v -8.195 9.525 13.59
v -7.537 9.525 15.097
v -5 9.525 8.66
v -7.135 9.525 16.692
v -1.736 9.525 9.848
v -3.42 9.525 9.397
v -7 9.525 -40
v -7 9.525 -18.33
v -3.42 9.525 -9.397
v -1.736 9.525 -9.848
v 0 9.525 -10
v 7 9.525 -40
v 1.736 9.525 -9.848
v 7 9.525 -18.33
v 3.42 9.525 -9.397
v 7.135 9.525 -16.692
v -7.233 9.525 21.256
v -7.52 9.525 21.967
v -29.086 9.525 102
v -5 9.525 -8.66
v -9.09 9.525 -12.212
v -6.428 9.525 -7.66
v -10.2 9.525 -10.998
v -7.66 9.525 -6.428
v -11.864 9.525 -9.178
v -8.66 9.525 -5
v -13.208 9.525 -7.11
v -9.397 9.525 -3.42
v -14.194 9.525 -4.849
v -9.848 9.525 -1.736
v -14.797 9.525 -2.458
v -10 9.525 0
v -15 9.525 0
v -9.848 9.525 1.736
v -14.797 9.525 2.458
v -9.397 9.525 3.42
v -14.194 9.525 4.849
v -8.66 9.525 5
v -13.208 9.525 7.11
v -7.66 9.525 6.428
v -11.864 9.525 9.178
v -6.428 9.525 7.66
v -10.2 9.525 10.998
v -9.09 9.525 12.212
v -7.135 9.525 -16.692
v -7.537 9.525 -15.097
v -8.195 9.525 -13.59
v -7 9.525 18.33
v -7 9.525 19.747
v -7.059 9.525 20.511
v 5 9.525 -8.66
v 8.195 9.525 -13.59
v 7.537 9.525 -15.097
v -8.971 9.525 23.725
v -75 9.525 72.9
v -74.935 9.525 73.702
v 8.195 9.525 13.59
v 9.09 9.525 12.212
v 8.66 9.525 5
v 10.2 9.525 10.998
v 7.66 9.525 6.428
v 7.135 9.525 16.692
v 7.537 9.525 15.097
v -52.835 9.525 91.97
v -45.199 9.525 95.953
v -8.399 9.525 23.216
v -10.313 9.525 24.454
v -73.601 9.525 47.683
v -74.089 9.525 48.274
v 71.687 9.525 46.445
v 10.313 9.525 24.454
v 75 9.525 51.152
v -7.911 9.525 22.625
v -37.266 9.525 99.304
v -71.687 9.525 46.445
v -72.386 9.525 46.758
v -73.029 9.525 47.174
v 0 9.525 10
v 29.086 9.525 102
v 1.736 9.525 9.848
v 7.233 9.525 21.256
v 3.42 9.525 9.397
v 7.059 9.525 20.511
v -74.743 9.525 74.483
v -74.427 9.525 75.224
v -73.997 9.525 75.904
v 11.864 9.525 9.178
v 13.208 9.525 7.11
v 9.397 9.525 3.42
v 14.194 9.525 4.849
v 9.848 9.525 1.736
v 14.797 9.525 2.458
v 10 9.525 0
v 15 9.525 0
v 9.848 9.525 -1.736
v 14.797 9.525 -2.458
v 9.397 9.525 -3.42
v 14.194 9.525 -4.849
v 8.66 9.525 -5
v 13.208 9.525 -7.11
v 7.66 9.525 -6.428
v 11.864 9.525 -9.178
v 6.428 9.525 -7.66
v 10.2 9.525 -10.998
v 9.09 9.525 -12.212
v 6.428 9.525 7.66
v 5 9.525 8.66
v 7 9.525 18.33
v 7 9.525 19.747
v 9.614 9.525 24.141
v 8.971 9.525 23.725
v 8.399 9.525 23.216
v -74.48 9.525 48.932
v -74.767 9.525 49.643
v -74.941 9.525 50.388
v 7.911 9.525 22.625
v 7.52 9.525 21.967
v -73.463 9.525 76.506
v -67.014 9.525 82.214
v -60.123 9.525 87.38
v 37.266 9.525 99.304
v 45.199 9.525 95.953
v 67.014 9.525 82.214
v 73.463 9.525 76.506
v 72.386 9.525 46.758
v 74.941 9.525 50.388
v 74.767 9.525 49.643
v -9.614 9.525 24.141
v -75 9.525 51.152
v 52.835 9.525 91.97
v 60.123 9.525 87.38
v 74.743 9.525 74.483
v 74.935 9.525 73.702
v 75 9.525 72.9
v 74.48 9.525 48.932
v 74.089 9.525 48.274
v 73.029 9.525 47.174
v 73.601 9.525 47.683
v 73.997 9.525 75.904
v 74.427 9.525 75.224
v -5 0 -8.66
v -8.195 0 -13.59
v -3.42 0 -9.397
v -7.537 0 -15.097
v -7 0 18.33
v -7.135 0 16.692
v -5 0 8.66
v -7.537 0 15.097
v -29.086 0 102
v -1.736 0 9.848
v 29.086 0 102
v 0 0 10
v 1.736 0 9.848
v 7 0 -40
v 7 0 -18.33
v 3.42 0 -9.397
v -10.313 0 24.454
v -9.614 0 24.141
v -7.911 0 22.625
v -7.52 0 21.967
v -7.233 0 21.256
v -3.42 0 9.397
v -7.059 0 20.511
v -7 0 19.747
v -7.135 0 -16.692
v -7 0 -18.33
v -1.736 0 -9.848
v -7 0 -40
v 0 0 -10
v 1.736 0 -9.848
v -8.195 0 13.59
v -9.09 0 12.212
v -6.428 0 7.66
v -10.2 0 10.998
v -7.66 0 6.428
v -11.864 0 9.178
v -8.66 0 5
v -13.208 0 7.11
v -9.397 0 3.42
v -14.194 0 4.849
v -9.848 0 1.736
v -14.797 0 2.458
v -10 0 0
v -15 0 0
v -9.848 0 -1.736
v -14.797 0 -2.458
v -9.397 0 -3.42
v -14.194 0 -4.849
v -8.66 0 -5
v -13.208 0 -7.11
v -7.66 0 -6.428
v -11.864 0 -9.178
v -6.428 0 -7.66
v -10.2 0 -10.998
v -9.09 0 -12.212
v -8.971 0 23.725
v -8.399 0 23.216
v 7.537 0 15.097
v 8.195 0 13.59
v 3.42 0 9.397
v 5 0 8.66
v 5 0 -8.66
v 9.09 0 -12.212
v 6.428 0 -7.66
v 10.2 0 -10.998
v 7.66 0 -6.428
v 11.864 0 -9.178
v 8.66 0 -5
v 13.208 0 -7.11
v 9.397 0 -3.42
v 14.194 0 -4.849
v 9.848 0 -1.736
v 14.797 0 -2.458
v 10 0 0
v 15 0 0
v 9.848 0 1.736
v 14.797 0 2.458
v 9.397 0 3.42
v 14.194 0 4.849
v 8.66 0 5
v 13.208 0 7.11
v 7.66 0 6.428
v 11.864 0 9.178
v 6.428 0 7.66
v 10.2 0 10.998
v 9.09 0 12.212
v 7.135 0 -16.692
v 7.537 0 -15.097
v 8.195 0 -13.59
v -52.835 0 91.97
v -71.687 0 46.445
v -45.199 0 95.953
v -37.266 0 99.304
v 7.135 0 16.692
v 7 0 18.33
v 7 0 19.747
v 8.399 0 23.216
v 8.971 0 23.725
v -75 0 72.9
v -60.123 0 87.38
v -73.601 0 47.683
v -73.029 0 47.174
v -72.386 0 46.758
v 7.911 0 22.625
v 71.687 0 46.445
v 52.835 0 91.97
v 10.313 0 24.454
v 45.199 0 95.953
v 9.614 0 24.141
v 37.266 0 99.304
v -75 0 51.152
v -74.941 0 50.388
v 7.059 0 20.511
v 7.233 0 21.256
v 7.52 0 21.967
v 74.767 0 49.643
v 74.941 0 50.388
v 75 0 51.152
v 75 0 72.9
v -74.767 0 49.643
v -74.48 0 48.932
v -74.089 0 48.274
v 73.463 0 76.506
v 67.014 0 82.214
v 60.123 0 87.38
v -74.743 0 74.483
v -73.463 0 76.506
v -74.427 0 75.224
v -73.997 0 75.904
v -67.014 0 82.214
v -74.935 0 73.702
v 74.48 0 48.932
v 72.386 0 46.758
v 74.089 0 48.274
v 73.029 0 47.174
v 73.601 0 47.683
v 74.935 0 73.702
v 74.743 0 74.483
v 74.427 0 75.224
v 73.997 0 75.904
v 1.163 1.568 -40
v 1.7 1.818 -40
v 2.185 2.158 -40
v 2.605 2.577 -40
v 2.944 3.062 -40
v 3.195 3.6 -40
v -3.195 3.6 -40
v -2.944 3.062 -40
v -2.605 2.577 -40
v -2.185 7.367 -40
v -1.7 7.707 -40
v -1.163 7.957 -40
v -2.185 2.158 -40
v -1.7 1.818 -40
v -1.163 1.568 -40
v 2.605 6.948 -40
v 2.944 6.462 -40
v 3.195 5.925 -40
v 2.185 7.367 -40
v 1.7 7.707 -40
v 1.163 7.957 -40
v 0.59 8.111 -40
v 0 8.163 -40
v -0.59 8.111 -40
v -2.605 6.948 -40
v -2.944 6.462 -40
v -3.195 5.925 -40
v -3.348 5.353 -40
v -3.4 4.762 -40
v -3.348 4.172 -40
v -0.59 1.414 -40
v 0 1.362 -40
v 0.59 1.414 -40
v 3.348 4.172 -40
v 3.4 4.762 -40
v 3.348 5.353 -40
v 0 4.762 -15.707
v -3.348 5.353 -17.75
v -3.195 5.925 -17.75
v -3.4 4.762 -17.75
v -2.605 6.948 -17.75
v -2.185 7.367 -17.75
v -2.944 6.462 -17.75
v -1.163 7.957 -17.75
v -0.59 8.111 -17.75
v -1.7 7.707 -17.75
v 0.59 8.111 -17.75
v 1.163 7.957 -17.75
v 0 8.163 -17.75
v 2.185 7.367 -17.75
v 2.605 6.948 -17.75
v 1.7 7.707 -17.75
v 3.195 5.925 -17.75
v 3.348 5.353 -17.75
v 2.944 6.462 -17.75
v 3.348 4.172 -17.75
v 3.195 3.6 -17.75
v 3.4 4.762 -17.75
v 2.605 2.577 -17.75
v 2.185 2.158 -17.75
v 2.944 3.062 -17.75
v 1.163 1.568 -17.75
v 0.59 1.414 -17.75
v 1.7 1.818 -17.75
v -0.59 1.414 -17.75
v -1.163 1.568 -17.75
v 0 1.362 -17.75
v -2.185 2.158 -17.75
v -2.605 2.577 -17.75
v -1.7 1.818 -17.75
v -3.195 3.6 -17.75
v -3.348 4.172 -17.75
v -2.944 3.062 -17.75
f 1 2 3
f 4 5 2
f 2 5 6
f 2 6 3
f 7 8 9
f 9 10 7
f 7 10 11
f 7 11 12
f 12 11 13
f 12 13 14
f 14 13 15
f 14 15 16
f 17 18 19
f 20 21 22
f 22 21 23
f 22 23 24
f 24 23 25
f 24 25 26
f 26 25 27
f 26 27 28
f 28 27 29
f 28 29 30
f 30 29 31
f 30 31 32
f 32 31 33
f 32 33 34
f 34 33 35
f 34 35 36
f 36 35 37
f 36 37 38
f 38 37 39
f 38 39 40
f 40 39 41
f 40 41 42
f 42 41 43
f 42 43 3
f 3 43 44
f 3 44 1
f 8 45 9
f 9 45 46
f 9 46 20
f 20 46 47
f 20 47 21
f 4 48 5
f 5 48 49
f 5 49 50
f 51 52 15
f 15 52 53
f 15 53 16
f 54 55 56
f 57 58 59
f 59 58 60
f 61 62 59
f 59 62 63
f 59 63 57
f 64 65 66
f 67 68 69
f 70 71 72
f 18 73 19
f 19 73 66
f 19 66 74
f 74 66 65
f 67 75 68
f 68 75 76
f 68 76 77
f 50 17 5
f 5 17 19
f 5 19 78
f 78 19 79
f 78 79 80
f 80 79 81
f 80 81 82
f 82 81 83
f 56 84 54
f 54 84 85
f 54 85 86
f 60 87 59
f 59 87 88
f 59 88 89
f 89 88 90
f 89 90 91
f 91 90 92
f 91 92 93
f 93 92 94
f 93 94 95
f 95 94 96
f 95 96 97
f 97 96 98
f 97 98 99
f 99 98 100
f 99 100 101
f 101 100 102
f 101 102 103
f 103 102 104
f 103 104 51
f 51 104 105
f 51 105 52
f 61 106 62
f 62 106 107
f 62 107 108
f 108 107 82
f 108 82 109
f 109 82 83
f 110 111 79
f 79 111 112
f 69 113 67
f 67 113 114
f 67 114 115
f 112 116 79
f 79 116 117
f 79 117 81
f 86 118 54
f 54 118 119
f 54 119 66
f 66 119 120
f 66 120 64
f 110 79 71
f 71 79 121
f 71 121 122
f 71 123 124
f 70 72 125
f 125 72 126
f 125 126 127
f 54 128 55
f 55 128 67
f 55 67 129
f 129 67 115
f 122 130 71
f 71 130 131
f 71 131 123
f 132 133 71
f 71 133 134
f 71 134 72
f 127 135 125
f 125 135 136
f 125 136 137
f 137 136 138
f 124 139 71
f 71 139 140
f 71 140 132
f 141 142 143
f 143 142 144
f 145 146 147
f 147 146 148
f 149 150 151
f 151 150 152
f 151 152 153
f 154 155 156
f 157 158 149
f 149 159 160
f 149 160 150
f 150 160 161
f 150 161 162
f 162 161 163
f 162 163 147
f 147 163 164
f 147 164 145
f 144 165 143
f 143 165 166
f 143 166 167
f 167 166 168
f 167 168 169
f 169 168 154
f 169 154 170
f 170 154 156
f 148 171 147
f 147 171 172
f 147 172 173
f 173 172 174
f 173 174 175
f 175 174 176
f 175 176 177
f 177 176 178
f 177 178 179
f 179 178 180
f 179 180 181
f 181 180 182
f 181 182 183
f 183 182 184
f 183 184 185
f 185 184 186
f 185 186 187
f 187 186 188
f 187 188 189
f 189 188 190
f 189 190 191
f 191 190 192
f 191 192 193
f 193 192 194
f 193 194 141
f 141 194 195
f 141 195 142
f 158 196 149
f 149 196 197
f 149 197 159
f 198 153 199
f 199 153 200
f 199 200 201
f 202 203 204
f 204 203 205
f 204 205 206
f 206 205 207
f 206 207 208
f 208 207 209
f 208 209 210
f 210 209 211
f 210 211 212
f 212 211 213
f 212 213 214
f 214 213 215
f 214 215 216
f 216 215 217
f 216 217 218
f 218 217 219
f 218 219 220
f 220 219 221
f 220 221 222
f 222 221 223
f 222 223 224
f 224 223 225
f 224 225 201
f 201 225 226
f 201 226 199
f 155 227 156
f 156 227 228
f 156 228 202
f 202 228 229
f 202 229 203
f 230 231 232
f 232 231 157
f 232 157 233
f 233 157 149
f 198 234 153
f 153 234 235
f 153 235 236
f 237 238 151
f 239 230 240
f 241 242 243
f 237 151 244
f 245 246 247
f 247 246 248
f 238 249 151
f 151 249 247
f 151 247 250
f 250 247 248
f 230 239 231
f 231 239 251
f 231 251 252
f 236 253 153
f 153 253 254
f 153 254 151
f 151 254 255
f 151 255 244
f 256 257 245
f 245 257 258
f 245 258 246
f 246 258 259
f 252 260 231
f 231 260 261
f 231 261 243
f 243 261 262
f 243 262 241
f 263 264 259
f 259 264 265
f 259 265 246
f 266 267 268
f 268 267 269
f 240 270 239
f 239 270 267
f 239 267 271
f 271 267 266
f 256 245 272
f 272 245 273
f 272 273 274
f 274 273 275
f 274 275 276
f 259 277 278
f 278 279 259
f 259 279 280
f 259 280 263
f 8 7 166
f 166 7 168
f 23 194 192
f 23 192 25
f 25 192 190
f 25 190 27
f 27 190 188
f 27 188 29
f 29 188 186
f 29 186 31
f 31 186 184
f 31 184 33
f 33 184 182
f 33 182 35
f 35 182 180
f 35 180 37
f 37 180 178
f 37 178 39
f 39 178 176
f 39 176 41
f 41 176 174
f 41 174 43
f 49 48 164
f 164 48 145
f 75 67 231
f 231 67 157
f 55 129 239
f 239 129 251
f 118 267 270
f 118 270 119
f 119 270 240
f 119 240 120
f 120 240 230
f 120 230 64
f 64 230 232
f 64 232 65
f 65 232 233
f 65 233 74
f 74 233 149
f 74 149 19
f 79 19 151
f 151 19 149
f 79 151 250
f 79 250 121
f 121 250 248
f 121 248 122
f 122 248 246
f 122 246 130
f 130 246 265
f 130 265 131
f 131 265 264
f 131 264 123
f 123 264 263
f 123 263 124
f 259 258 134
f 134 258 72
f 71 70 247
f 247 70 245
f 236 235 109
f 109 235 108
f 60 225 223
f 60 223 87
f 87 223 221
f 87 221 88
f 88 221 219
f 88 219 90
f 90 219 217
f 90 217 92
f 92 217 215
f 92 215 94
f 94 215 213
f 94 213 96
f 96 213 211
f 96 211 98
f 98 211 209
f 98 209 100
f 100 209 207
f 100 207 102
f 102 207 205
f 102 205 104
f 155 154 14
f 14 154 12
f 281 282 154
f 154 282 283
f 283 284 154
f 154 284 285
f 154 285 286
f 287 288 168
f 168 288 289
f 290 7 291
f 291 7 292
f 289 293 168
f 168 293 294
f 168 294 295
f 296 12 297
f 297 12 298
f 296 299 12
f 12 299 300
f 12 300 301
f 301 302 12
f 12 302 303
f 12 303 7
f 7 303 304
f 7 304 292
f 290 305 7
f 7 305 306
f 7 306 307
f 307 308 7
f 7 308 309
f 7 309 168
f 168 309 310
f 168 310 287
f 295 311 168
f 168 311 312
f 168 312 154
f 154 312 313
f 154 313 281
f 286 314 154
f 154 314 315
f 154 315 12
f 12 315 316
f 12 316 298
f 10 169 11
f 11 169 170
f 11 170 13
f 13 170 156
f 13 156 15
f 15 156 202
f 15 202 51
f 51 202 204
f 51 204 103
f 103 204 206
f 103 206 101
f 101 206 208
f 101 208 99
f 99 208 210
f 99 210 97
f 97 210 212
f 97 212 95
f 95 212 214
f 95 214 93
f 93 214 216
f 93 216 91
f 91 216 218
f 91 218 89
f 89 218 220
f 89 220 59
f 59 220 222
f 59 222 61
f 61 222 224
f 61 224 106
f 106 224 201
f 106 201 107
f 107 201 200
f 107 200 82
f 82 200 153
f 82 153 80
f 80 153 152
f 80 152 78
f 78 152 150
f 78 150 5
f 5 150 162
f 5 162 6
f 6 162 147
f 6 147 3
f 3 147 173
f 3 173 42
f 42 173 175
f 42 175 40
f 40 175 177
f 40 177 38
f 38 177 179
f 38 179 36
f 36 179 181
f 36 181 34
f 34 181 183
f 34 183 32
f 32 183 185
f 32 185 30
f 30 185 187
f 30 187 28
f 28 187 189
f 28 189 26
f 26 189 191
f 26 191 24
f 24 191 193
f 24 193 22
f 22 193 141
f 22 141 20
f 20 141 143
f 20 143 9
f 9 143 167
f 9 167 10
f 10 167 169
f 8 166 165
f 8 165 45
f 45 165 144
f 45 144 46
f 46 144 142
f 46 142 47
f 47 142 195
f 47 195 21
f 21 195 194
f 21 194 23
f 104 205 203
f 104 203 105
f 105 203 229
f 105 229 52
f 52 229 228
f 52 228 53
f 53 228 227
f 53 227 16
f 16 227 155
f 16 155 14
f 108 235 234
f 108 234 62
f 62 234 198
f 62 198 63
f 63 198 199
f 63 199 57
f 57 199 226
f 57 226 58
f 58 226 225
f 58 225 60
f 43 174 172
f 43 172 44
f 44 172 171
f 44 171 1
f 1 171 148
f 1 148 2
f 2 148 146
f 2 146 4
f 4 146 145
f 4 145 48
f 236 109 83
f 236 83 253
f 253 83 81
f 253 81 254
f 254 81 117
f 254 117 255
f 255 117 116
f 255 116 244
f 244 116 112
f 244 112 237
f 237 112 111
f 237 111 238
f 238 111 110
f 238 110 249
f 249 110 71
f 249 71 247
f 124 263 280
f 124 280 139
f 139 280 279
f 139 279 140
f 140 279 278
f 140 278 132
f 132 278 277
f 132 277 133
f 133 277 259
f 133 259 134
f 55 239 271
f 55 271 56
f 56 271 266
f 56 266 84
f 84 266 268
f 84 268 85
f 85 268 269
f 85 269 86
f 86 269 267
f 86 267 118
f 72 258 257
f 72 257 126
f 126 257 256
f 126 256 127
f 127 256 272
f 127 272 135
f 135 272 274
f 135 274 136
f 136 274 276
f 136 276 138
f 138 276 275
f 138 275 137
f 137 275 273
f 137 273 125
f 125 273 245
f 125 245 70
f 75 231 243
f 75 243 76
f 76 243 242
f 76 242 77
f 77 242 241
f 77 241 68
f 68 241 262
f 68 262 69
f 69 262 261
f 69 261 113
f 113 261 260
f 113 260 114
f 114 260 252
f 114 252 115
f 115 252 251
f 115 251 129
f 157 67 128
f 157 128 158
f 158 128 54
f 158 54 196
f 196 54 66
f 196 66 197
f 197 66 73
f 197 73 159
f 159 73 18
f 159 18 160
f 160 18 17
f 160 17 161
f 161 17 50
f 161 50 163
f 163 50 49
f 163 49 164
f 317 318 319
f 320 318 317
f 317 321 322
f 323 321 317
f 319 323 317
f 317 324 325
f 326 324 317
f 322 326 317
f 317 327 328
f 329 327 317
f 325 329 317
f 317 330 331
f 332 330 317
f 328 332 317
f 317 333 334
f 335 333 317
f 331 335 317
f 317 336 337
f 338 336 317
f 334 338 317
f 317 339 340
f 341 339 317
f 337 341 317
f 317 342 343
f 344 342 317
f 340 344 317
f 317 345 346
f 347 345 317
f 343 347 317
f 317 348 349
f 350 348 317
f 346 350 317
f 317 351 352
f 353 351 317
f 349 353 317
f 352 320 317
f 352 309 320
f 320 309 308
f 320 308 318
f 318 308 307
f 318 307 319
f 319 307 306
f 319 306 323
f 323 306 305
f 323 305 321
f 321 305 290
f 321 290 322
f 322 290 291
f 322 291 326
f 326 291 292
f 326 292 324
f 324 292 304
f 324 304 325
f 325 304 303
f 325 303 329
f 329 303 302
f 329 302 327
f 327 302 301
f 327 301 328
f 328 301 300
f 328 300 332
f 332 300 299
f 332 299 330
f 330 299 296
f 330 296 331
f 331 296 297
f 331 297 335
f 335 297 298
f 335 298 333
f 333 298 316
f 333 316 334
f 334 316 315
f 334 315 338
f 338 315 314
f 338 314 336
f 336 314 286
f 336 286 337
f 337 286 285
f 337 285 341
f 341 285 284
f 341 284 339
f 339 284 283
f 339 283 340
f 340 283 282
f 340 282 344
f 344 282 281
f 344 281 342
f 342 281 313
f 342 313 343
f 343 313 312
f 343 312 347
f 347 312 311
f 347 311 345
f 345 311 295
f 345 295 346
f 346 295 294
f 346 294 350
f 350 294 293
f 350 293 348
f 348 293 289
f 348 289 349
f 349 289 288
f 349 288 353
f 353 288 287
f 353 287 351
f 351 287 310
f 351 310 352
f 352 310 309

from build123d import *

# Parameters (mm, degrees)
SKETCH1_R                  = 10
BOSS_EXTRUDE1_DEPTH        = 9.525
FILLET1_R                  = 10
FILLET2_R                  = 5
M8X1_25_TAPPED_HOLE1_D     = 6.8
M8X1_25_TAPPED_HOLE1_DEPTH = 22.25
M8X1_25_TAPPED_HOLE1_TIP   = 2.042926105


with BuildPart() as part:
    # Sketch1 → Boss-Extrude1 (new body)
    with BuildSketch(Plane(origin=(0, 0, 0), x_dir=(1, 0, 0), z_dir=(0, 1, 0))):
        with BuildLine():
            Line((-7, 40), (7, 40))
            Line((7, 40), (7, 13.266499161))
            ThreePointArc((7, 13.266499161), (15, 0), (7, -13.266499161))
            Line((7, -13.266499161), (7, -23.266499161))
            Line((7, -23.266499161), (75, -47.63233641))
            Line((75, -47.63233641), (75, -75))
            ThreePointArc((75, -75), (53.765490493, -91.429054638), (29.086079144, -102))
            Line((29.086079144, -102), (-29.086079144, -102))
            ThreePointArc((-29.086079144, -102), (-53.765490493, -91.429054638), (-75, -75))
            Line((-75, -75), (-75, -47.63233641))
            Line((-75, -47.63233641), (-7, -23.266499161))
            Line((-7, -23.266499161), (-7, -13.266499161))
            ThreePointArc((-7, -13.266499161), (-15, 0), (-7, 13.266499161))
            Line((-7, 13.266499161), (-7, 40))
        make_face()
        Circle(SKETCH1_R, mode=Mode.SUBTRACT)
    extrude(amount=BOSS_EXTRUDE1_DEPTH)

    # Fillet1
    fillet1_edges = [part.edges().sort_by_distance(p)[0] for p in [
        (7, 4.7625, -13.266499161),
        (7, 4.7625, 13.266499161),
        (-7, 4.7625, 13.266499161),
        (-7, 4.7625, -13.266499161),
    ]]
    fillet(fillet1_edges, radius=FILLET1_R)

    # Fillet2
    fillet2_edges = [part.edges().sort_by_distance(p)[0] for p in [
        (7, 4.7625, 23.266499161),
        (75, 4.7625, 47.63233641),
        (75, 4.7625, 75),
        (-75, 4.7625, 75),
        (-75, 4.7625, 47.63233641),
        (-7, 4.7625, 23.266499161),
    ]]
    fillet(fillet2_edges, radius=FILLET2_R)

    # M8x1.25 Tapped Hole1
    with Locations(Plane(origin=(0, 0, -40), x_dir=(-1, 0, 0), z_dir=(0, 0, -1))):
        with Locations((0, 4.7625)):
            Hole(M8X1_25_TAPPED_HOLE1_D / 2, depth=M8X1_25_TAPPED_HOLE1_DEPTH)
            with Locations((0, 0, -(M8X1_25_TAPPED_HOLE1_DEPTH + M8X1_25_TAPPED_HOLE1_TIP / 2))):  # 118° drill point
                Cone(0, M8X1_25_TAPPED_HOLE1_D / 2, M8X1_25_TAPPED_HOLE1_TIP, mode=Mode.SUBTRACT)


solid = part.part
